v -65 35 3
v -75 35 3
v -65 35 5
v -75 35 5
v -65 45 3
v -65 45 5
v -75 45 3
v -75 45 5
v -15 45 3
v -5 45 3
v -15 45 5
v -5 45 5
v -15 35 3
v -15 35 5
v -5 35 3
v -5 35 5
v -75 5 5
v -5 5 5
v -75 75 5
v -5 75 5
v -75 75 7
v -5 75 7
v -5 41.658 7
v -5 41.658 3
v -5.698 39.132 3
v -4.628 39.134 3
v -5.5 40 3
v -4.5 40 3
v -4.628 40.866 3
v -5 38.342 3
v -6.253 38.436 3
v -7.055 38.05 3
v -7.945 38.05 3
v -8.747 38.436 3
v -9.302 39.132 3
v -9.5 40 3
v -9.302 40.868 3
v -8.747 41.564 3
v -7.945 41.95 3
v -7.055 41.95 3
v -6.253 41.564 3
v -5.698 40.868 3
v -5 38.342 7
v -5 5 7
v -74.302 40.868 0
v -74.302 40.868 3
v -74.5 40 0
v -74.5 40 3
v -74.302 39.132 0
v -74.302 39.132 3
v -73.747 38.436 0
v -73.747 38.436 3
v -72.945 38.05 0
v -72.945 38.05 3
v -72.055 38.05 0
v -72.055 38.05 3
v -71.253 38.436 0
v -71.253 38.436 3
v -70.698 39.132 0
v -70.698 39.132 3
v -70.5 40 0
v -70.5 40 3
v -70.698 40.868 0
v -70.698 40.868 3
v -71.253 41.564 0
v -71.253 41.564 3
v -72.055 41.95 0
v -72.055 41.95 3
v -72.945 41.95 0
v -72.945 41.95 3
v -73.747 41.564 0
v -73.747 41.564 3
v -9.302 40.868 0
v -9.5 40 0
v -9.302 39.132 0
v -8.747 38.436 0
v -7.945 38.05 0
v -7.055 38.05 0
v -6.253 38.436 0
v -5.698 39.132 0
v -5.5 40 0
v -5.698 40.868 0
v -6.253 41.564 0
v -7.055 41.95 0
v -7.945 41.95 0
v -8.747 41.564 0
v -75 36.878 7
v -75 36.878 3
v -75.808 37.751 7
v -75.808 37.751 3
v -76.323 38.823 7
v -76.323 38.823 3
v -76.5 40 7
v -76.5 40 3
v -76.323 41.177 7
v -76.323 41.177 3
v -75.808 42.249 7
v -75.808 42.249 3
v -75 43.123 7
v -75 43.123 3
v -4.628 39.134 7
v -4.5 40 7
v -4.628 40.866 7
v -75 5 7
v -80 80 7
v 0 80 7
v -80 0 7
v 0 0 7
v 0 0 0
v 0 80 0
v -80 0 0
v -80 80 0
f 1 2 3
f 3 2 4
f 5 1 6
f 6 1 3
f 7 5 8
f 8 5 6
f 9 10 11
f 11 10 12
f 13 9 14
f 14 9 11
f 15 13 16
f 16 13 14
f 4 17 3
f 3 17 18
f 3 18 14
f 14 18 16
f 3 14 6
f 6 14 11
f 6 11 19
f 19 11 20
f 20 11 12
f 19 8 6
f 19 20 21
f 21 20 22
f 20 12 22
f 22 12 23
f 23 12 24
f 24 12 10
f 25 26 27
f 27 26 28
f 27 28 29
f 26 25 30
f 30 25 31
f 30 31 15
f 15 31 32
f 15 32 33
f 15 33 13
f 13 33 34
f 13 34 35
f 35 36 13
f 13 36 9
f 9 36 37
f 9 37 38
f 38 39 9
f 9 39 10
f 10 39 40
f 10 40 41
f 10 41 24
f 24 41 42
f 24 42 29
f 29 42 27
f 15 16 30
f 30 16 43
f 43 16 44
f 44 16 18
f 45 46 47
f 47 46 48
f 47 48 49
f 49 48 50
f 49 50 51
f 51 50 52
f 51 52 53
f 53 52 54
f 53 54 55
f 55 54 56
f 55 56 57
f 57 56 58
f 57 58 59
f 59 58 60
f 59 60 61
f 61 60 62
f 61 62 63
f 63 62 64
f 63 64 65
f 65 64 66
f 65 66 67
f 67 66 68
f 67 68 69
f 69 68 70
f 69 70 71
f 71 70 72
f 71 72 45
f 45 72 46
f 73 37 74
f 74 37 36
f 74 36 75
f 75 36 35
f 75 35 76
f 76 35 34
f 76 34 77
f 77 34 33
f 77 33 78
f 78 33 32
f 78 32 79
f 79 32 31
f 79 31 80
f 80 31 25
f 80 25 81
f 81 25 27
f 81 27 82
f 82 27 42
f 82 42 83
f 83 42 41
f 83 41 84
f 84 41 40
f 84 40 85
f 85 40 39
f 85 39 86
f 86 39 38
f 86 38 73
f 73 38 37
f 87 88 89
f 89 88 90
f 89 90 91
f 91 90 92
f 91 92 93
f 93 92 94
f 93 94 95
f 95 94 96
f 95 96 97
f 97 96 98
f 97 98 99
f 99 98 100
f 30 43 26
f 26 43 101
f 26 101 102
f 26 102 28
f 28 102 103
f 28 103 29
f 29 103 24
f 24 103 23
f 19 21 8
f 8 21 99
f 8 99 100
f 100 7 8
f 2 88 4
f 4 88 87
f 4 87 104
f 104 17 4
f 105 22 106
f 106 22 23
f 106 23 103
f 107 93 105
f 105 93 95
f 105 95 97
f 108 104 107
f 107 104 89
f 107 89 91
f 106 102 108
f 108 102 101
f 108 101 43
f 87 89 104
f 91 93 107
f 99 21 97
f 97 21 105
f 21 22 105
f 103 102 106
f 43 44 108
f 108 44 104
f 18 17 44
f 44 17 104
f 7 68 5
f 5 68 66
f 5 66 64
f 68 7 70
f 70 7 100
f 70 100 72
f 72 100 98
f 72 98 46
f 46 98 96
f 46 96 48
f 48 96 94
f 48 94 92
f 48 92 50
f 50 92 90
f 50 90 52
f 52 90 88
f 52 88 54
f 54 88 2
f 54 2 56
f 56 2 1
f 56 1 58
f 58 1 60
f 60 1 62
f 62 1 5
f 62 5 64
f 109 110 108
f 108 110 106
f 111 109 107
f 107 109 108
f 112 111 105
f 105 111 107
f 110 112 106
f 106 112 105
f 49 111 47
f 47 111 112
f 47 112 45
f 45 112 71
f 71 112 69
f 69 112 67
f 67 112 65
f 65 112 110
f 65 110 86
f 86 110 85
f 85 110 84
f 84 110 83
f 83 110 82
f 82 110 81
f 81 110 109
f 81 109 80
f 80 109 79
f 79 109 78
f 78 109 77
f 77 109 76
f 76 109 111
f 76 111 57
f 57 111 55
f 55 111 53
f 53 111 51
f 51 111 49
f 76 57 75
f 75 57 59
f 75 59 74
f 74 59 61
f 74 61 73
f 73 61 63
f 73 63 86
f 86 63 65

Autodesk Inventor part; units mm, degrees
ref_plane "YZ Plane" through (0, 0, 0) normal (1, 0, 0) x (0, 1, 0)
ref_plane "XZ Plane" through (0, 0, 0) normal (0, 1, 0) x (-1, 0, 0)
ref_plane "XY Plane" through (0, 0, 0) normal (0, 0, 1) x (1, 0, 0)
sketch "Sketch1" plane through (0, 0, 0) normal (0, 0, 1) x (1, 0, 0)
  line L0 (0, 0) -> (-80, 0)
  line L1 (-80, 0) -> (-80, 80)
  line L2 (-80, 80) -> (0, 80)
  line L3 (0, 80) -> (0, 0)
  line L4 (-75, 75) -> (-5, 75)
  line L5 (-5, 75) -> (-5, 5)
  line L6 (-5, 5) -> (-75, 5)
  line L7 (-75, 5) -> (-75, 75)
  dimension "d0" = 80
  dimension "d1" = 80
  dimension "d2" = 70
  dimension "d3" = 70
extrude "Extrusion1" add sketch "Sketch1" along normal blind 7 contours L0 L1 L2 L3 | L4 L5 L6 L7
sketch "Sketch2" plane through (-80, 80, 0) normal (0, 1, 0) x (1, 0, 0)
  line L0 (24.4, -3.45) -> (15.6, -3.45)
  line L1 (15.6, -3.45) -> (15.6, -6.55)
  line L2 (15.6, -6.55) -> (24.4, -6.55)
  line L3 (24.4, -6.55) -> (24.4, -3.45)
  line L4 (64.4, -3.45) -> (55.6, -3.45)
  line L5 (55.6, -3.45) -> (55.6, -6.55)
  line L6 (55.6, -6.55) -> (64.4, -6.55)
  line L7 (64.4, -6.55) -> (64.4, -3.45)
  point P0 (80, 0)
  point P1 (20, -5)
  point P2 (60, -5)
  dimension "d8" = 8.8
  dimension "d9" = 3.1
  dimension "d12" = 8.8
  dimension "d13" = 3.1
extrude "Extrusion2" [suppressed]
sketch "Sketch4" plane through (0, 0, 7) normal (0, 0, 1) x (1, 0, 0)
  line L0 (-5, 5) -> (-75, 5)
  line L1 (-75, 5) -> (-75, 75)
  line L2 (-75, 75) -> (-5, 75)
  line L3 (-5, 75) -> (-5, 5)
  point P0 (0, 0)
  point P1 (-7.5, 40)
  point P2 (-72.5, 40)
  dimension "d21" = 70
  dimension "d22" = 70
extrude "Extrusion3" cut sketch "Sketch4" against normal blind 4
sketch "Sketch5" plane through (-80, 0, 0) normal (0, -1, 0) x (1, 0, 0)
  line L0 (2, 2) -> (12, 2)
  line L1 (12, 2) -> (12, 5)
  line L2 (12, 5) -> (2, 5)
  line L3 (2, 5) -> (2, 2)
  line L4 (78, 2) -> (68, 2)
  line L5 (68, 2) -> (68, 5)
  line L6 (68, 5) -> (78, 5)
  line L7 (78, 5) -> (78, 2)
  point P0 (80, 0)
  dimension "d25" = 10
  dimension "d26" = 3
  dimension "d27" = 10
  dimension "d28" = 3
extrude "Extrusion4" [suppressed]
sketch "Sketch8" plane through (0, 0, 7) normal (0, 0, 1) x (1, 0, 0)
  circle A0 centre (-7.5, 40) radius 3
  circle A1 centre (-72.5, 40) radius 4
  point P0 (0, 0)
  dimension "d42" = 6
  dimension "d43" = 8
extrude "Extrusion5" cut sketch "Sketch8" against normal blind 4
sketch "Sketch9" plane through (0, 0, 3) normal (0, 0, 1) x (1, 0, 0)
  point P0 (0, 0)
  point P1 (-7.5, 40)
  point P2 (-72.5, 40)
hole "Hole2" at (-7.5, 40, 3) at (-72.5, 40, 3) direction (0, 0, -1) diameter 4 depth 8
sketch "Sketch11" plane through (0, 0, 3) normal (0, 0, 1) x (1, 0, 0)
  line L0 (-5, 38.3417) -> (-5, 5) projected
  line L1 (-5, 5) -> (-75, 5)
  line L2 (-75, 5) -> (-75, 35)
  line L3 (-75, 35) -> (-5, 35)
  line L4 (-5, 35) -> (-5, 5)
  line L5 (-75, 43.1225) -> (-75, 75) projected
  line L6 (-75, 75) -> (-5, 75)
  line L7 (-5, 75) -> (-5, 45)
  line L8 (-5, 45) -> (-75, 45)
  line L9 (-75, 45) -> (-75, 75)
  line L10 (-65, 35) -> (-15, 35)
  line L11 (-15, 35) -> (-15, 45)
  line L12 (-15, 45) -> (-65, 45)
  line L13 (-65, 45) -> (-65, 35)
  point P0 (0, 0)
  dimension "d60" = 70
  dimension "d61" = 30
  dimension "d62" = 70
  dimension "d63" = 30
  dimension "d66" = 50
extrude "Extrusion7" add sketch "Sketch11" along normal blind 2
properties part number "Marker_TestFit"
